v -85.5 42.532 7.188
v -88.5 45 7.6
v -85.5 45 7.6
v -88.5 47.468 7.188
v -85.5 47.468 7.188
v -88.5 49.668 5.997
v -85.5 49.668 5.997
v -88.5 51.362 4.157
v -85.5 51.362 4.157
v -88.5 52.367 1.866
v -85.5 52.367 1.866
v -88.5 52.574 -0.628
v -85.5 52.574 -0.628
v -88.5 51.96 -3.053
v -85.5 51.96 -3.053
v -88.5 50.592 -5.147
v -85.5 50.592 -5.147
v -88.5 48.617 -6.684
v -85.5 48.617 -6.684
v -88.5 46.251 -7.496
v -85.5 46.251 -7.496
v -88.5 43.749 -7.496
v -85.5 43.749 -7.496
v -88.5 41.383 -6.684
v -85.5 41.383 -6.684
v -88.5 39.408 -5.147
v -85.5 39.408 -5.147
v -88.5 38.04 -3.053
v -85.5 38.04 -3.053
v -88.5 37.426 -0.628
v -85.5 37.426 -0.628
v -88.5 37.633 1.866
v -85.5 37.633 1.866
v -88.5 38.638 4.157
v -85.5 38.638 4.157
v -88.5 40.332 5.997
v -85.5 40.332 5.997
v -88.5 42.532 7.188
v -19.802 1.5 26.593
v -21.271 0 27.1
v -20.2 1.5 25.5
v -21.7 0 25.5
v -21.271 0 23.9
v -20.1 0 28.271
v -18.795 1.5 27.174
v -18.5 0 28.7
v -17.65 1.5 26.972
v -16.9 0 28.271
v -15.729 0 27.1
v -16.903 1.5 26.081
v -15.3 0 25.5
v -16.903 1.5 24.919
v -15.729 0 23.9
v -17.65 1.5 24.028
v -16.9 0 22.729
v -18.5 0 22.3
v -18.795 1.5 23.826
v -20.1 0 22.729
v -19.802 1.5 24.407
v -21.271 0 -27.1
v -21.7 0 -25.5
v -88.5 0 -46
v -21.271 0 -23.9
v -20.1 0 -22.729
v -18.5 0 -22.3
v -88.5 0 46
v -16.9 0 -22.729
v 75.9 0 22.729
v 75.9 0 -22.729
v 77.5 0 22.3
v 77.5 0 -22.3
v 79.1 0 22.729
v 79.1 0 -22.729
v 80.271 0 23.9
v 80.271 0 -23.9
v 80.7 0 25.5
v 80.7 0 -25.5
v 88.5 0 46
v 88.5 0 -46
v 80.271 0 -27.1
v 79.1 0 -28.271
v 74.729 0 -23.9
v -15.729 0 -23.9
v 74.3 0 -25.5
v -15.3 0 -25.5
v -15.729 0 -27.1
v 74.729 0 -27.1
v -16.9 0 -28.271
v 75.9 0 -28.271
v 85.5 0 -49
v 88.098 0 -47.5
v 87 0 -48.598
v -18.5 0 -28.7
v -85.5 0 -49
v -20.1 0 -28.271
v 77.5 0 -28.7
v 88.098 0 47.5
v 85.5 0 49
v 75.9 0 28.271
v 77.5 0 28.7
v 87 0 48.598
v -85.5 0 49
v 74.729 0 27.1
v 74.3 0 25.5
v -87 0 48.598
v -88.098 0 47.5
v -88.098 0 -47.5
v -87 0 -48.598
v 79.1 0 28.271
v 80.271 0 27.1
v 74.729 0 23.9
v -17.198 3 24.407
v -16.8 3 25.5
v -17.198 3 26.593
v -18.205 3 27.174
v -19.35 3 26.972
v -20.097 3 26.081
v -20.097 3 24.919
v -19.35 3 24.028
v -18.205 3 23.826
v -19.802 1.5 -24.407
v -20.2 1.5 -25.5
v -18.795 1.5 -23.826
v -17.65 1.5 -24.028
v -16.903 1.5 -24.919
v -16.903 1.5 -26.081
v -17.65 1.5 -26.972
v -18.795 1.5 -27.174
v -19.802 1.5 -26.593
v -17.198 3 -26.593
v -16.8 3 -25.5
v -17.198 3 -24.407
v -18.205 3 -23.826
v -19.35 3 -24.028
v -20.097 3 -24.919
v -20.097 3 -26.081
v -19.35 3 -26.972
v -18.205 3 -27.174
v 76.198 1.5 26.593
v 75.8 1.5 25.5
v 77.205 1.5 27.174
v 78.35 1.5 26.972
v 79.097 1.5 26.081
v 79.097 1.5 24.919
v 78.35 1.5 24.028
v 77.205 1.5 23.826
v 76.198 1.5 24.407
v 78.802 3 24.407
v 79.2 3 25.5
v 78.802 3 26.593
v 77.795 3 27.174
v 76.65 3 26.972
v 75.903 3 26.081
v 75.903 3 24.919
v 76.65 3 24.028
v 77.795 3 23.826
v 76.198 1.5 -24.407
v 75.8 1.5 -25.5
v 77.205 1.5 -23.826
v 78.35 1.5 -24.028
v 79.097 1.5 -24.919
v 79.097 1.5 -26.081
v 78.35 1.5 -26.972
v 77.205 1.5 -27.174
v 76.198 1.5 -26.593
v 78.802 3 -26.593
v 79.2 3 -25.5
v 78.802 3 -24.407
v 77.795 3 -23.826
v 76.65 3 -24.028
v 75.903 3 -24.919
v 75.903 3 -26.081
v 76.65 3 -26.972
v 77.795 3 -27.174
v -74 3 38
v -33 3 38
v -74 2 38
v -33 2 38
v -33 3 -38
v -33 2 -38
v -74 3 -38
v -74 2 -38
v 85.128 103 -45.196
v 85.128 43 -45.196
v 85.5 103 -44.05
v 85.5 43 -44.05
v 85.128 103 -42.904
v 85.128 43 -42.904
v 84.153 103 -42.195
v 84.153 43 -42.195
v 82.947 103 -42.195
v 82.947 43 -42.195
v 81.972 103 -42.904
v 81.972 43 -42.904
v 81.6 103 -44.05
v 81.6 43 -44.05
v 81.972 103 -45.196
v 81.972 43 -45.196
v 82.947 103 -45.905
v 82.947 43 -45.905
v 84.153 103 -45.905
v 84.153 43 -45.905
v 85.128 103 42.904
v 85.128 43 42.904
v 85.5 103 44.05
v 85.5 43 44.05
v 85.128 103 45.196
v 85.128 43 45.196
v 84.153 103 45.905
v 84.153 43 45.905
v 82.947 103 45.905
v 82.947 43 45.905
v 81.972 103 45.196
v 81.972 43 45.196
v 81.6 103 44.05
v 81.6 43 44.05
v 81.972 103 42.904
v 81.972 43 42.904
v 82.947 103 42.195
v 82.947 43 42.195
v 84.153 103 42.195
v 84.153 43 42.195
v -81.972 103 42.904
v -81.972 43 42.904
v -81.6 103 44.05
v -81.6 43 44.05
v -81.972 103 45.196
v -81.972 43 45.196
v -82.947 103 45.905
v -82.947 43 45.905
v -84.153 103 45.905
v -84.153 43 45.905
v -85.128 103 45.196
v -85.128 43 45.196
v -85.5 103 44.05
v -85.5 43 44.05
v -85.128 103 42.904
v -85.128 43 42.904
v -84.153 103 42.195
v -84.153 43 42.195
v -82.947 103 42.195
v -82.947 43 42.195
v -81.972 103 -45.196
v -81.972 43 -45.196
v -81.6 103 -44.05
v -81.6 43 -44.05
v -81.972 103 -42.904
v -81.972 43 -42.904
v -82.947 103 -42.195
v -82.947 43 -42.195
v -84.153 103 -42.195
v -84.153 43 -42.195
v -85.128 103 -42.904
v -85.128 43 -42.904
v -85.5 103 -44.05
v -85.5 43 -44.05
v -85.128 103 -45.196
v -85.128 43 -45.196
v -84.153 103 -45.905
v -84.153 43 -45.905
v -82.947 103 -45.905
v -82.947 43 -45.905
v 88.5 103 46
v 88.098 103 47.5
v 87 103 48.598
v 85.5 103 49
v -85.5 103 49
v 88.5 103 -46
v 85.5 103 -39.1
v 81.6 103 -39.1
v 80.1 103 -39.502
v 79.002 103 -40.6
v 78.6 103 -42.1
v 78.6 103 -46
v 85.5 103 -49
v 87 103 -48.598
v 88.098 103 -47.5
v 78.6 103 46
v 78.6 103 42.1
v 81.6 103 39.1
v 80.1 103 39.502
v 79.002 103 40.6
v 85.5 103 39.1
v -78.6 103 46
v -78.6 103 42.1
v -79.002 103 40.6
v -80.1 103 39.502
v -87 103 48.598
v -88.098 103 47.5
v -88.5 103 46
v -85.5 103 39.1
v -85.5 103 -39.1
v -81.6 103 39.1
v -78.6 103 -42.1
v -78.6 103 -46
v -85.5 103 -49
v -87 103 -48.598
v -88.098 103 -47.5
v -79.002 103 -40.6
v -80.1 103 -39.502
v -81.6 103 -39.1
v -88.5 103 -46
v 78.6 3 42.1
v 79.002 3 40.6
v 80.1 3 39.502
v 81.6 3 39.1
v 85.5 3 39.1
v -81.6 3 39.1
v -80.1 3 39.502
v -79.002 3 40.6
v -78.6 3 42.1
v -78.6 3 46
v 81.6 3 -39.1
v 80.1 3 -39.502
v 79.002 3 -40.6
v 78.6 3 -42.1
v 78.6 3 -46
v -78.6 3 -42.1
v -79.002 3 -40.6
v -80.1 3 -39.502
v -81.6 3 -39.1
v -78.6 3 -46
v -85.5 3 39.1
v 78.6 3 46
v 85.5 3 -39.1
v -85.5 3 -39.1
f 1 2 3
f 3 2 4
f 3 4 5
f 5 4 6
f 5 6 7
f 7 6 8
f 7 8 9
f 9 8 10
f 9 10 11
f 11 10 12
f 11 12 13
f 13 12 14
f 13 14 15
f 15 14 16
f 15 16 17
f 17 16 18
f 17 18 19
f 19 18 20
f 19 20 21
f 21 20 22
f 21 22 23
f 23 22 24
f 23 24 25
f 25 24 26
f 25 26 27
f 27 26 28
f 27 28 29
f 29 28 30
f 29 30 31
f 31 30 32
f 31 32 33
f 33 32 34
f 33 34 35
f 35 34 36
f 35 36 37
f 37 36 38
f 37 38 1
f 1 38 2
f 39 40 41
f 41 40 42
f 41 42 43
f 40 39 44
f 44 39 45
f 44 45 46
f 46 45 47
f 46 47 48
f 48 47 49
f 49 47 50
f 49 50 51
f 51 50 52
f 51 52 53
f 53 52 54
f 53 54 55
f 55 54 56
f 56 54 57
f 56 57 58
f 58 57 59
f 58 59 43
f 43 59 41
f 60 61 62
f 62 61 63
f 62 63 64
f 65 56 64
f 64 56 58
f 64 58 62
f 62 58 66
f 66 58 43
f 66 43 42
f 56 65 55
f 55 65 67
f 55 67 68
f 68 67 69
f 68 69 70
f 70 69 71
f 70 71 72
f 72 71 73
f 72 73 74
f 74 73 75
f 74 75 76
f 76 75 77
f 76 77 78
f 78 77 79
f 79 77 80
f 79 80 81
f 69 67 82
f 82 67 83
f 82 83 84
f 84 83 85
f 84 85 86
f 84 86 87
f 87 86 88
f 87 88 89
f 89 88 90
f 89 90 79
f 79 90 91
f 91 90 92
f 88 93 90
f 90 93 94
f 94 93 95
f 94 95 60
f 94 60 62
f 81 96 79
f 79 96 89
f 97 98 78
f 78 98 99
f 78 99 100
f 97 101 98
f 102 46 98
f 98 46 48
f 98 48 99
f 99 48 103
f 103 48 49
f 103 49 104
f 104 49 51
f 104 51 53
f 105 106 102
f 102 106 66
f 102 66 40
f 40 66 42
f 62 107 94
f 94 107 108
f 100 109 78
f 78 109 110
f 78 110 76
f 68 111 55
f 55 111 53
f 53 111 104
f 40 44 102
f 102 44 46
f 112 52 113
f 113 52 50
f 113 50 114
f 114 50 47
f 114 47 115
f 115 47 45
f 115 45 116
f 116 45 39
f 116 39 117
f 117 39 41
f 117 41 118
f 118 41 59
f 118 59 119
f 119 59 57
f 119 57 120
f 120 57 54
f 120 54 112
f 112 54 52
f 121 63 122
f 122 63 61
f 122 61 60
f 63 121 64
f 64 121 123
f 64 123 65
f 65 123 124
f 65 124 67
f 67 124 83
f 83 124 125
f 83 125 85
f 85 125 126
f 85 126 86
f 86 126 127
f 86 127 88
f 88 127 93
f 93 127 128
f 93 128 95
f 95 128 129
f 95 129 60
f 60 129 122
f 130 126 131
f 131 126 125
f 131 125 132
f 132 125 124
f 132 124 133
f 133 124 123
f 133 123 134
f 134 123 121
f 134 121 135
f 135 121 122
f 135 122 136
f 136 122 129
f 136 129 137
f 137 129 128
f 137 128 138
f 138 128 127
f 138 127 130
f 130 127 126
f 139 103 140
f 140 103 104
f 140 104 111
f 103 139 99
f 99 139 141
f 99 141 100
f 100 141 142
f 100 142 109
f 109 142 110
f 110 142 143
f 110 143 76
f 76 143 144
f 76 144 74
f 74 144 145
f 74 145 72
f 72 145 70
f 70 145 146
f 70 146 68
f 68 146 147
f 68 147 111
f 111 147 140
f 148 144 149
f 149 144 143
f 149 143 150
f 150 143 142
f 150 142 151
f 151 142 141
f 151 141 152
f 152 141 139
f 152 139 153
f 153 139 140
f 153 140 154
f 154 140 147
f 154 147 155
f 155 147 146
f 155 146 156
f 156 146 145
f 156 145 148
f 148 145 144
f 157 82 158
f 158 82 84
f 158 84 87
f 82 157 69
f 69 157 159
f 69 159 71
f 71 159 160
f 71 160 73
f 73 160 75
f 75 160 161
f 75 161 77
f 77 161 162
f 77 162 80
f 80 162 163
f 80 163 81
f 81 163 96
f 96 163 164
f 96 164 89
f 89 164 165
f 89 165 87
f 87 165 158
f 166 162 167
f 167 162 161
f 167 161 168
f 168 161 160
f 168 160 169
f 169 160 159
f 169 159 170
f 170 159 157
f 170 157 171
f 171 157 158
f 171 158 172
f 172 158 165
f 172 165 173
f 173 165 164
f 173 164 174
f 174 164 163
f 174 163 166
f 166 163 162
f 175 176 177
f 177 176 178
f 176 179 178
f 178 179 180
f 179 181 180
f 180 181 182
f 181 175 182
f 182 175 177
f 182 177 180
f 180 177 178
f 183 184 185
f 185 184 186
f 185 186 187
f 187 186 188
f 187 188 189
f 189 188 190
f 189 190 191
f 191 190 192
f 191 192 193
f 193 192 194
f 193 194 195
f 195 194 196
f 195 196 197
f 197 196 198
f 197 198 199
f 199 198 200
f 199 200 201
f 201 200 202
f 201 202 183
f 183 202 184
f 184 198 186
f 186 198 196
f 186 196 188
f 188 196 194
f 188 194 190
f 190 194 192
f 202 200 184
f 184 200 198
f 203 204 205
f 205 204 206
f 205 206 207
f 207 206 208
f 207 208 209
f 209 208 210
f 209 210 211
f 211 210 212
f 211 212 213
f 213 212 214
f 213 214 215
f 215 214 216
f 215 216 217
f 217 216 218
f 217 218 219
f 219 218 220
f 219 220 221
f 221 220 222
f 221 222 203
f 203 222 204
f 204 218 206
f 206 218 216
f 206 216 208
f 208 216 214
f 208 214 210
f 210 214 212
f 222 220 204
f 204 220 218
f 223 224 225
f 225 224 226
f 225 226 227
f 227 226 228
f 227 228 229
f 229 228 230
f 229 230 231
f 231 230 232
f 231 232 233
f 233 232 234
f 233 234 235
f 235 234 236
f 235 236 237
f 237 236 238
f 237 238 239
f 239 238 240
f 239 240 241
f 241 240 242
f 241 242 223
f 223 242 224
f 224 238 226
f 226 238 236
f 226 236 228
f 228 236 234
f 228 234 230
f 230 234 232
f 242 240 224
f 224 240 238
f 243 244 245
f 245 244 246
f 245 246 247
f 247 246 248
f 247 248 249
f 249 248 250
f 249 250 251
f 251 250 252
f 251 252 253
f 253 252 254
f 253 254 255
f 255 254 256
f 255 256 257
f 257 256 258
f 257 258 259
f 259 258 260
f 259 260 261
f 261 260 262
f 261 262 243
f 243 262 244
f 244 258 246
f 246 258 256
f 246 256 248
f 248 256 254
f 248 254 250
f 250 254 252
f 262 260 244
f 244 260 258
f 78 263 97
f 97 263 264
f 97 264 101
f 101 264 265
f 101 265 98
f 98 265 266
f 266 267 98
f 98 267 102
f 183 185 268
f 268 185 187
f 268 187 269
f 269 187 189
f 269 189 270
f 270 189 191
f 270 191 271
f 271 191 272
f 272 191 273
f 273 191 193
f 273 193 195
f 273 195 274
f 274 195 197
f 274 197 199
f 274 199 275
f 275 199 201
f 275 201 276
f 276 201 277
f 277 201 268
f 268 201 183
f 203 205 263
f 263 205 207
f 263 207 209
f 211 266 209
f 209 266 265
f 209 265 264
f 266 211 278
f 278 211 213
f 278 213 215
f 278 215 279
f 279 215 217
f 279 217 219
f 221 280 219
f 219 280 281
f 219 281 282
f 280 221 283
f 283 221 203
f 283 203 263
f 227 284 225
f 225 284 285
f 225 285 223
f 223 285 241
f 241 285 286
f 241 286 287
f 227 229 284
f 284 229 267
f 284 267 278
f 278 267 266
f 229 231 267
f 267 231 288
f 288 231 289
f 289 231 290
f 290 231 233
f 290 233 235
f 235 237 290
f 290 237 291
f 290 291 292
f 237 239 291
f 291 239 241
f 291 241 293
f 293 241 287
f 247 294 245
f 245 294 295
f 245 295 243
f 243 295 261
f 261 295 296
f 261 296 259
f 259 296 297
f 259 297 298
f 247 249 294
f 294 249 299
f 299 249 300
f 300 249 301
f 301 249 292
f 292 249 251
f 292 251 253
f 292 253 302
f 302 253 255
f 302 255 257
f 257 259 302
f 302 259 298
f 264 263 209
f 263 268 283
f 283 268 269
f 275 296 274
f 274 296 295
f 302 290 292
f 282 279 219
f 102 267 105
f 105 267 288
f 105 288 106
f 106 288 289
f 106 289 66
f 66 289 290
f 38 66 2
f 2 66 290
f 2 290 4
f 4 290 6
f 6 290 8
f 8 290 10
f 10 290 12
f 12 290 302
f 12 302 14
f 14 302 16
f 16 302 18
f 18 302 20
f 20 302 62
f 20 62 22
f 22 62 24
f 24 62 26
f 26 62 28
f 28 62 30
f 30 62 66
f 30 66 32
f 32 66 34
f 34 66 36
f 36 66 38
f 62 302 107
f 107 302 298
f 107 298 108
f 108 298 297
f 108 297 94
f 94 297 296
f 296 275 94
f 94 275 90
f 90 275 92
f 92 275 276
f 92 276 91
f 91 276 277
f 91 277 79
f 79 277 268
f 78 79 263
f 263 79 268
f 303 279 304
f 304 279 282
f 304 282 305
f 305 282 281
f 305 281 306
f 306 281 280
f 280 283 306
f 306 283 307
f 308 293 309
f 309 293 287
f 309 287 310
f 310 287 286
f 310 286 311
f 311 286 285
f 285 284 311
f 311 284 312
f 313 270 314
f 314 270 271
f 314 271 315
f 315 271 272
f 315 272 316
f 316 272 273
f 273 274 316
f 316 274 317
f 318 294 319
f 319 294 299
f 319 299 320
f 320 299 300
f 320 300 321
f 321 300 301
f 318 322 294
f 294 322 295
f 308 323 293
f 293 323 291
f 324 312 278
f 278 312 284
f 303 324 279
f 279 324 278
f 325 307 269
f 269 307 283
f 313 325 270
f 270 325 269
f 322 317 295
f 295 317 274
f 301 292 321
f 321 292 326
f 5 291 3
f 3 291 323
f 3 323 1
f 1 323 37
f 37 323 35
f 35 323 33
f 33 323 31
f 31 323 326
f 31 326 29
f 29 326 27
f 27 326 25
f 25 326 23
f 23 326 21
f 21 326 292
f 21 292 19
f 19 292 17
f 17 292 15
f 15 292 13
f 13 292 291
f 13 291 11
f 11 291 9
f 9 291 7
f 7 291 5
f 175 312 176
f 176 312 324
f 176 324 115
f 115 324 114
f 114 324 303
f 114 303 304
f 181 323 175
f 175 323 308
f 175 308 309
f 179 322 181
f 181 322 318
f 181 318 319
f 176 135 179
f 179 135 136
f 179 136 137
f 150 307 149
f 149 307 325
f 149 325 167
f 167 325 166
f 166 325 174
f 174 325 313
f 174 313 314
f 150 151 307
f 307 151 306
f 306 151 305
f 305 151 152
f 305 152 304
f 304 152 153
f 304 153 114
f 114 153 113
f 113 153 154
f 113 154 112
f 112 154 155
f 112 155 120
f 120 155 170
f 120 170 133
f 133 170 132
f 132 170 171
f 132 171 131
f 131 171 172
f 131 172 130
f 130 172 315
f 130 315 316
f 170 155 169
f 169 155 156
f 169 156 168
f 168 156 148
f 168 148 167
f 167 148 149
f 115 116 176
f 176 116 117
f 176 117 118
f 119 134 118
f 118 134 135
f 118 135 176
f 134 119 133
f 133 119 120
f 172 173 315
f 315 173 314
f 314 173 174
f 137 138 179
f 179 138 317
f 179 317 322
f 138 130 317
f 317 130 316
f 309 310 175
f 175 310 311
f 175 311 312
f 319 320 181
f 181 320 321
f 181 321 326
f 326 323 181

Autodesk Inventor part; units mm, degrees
ref_plane "YZ Plane" through (0, 0, 0) normal (1, 0, 0) x (0, 1, 0)
ref_plane "XZ Plane" through (0, 0, 0) normal (0, 1, 0) x (-1, 0, 0)
ref_plane "XY Plane" through (0, 0, 0) normal (0, 0, 1) x (1, 0, 0)
sketch "Náčrt1" plane through (0, 0, 0) normal (0, 1, 0) x (-1, 0, 0)
  line L0 (0, -68.6) -> (0, 68.6) projected
  line L1 (-123.9, 0) -> (123.9, 0) projected
  line L2 (88.5, -49) -> (-88.5, -49)
  line L3 (-88.5, -49) -> (-88.5, 49)
  line L4 (-88.5, 49) -> (88.5, 49)
  line L5 (88.5, 49) -> (88.5, -49)
  point P0 (0, 0)
  dimension "d0" = 98
  dimension "d1" = 177
extrude "Vysunutí1" add sketch "Náčrt1" along normal blind 3
sketch "Náčrt2" plane through (0, 3, 0) normal (0, 1, 0) x (1, 0, 0)
  line L0 (88.5, 49) -> (-88.5, 49) projected
  line L1 (-88.5, 49) -> (-88.5, -49) projected
  line L2 (-88.5, -49) -> (88.5, -49) projected
  line L3 (88.5, -49) -> (88.5, 49) projected
  line L4 (88.5, 49) -> (-88.5, 49) projected
  line L5 (-88.5, 49) -> (-88.5, -49) projected
  line L6 (-88.5, 49) -> (88.5, 49)
  line L7 (88.5, 49) -> (88.5, -49)
  line L8 (88.5, -49) -> (-88.5, -49)
  line L9 (-88.5, -49) -> (-88.5, 49)
  line L10 (-85.5, -39.1) -> (-85.5, 39.1)
  line L11 (-85.5, 39.1) -> (-78.6, 39.1)
  line L12 (-78.6, 39.1) -> (-78.6, 46)
  line L13 (-78.6, 46) -> (78.6, 46)
  line L14 (78.6, 46) -> (78.6, 39.1)
  line L15 (78.6, 39.1) -> (85.5, 39.1)
  line L16 (85.5, 39.1) -> (85.5, -39.1)
  line L17 (85.5, -39.1) -> (78.6, -39.1)
  line L18 (78.6, -39.1) -> (78.6, -46)
  line L19 (78.6, -46) -> (-78.6, -46)
  line L20 (-78.6, -46) -> (-78.6, -39.1)
  line L21 (-78.6, -39.1) -> (-85.5, -39.1)
  point P0 (0, 0)
  dimension "d4" = 3
  dimension "d5" = 3
  dimension "d6" = 3
  dimension "d7" = 3
  dimension "d8" = 9.9
  dimension "d9" = 9.9
  dimension "d10" = 9.9
  dimension "d11" = 9.9
  dimension "d12" = 9.9
  dimension "d13" = 9.9
  dimension "d14" = 9.9
  dimension "d15" = 9.9
extrude "Vysunutí2" add sketch "Náčrt2" along normal blind 100
fillet "Zaoblení1" radius 3 8 edges at (-78.6, 53, -39.1) (78.6, 53, -39.1) (-78.6, 53, 39.1) (78.6, 53, 39.1) (88.5, 51.5, -49) (-88.5, 51.5, -49) (-88.5, 51.5, 49) (88.5, 51.5, 49)
sketch "Náčrt3" plane through (0, 103, 0) normal (0, 1, 0) x (1, 0, 0)
  line L0 (-88.5, 49) -> (-88.5, -49) projected
  line L1 (85.5, 49) -> (-85.5, 49) projected
  line L2 (-88.5, 46) -> (-88.5, -46) projected
  line L3 (-85.5, -49) -> (85.5, -49) projected
  line L4 (88.5, -46) -> (88.5, 46) projected
  arc A0 (81.6, -39.1) -> (78.6, -42.1) centre (81.6, -42.1) ccw projected
  line L5 (78.6, -42.1) -> (78.6, -46) projected
  line L6 (78.6, -46) -> (-78.6, -46) projected
  line L7 (-78.6, -46) -> (-78.6, -42.1) projected
  arc A1 (-78.6, -42.1) -> (-81.6, -39.1) centre (-81.6, -42.1) ccw projected
  line L8 (-81.6, -39.1) -> (-85.5, -39.1) projected
  line L9 (-85.5, -39.1) -> (-85.5, 39.1) projected
  line L10 (-85.5, 39.1) -> (-81.6, 39.1) projected
  arc A2 (-81.6, 39.1) -> (-78.6, 42.1) centre (-81.6, 42.1) ccw projected
  line L11 (-78.6, 42.1) -> (-78.6, 46) projected
  line L12 (-78.6, 46) -> (78.6, 46) projected
  line L13 (78.6, 46) -> (78.6, 42.1) projected
  arc A3 (78.6, 42.1) -> (81.6, 39.1) centre (81.6, 42.1) ccw projected
  line L14 (81.6, 39.1) -> (85.5, 39.1) projected
  line L15 (85.5, 39.1) -> (85.5, -39.1) projected
  line L16 (85.5, -39.1) -> (81.6, -39.1) projected
  arc A4 (85.5, -49) -> (88.5, -46) centre (85.5, -46) ccw projected
  arc A5 (88.5, 46) -> (85.5, 49) centre (85.5, 46) ccw projected
  arc A6 (-85.5, 49) -> (-88.5, 46) centre (-85.5, 46) ccw projected
  arc A7 (-88.5, -46) -> (-85.5, -49) centre (-85.5, -46) ccw projected
  point P0 (0, 0)
  point P1 (-83.55, 44.05)
  point P2 (-83.55, -44.05)
  point P3 (83.55, -44.05)
  point P4 (83.55, 44.05)
  dimension "d19" = 4.95
  dimension "d20" = 4.95
  dimension "d21" = 4.95
  dimension "d22" = 4.95
  dimension "d23" = 4.95
  dimension "d24" = 4.95
  dimension "d25" = 4.95
  dimension "d26" = 4.95
hole "Díra1" at (-83.55, 103, -44.05) at (-83.55, 103, 44.05) at (83.55, 103, 44.05) at (83.55, 103, -44.05) direction (0, -1, 0) diameter 3.9 depth 60
sketch "Náčrt4" plane through (0, 3, 0) normal (0, 1, 0) x (1, 0, 0)
  line L0 (0, 68.6) -> (0, -68.6) projected
  line L1 (123.9, 0) -> (-123.9, 0) projected
  line L2 (85.5, 39.1) -> (85.5, -39.1) projected
  point P0 (0, 0)
  point P1 (-18.5, 25.5)
  point P2 (77.5, 25.5)
  point P3 (-18.5, -25.5)
  point P4 (77.5, -25.5)
  dimension "d34" = 51
  dimension "d35" = 96
  dimension "d36" = 96
  dimension "d37" = 51
  dimension "d38" = 8
  dimension "d39" = 25.5
hole "Díra2" at (-18.5, 3, -25.5) at (77.5, 3, -25.5) at (-18.5, 3, 25.5) at (77.5, 3, 25.5) direction (0, -1, 0) diameter 3.4 end through all clearance for "Šroub se zápustnou hlavou ISO 2009/7046" size "M3" standard "ISO"
sketch "Náčrt5" plane through (0, 3, 0) normal (0, 1, 0) x (1, 0, 0)
  line L0 (-85.5, -39.1) -> (-85.5, 39.1) projected
  line L1 (123.9, 0) -> (-123.9, 0) projected
  line L2 (-74, -38) -> (-33, -38)
  line L3 (-33, -38) -> (-33, 38)
  line L4 (-33, 38) -> (-74, 38)
  line L5 (-74, 38) -> (-74, -38)
  circle A0 centre (-18.5, 25.5) radius 1.7 projected
  point P0 (0, 0)
  dimension "d47" = 41
  dimension "d48" = 76
  dimension "d49" = 14.5
extrude "Vysunutí3" cut sketch "Náčrt5" against normal blind 1 contours L3 L2 L5 L1 | L1 L5 L4 L3
chamfer "Zkosení1" distance 1.5 angle 45 4 edges at (77.5, 0, -27.2) (-18.5, 0, -27.2) (77.5, 0, 23.8) (-18.5, 0, 23.8)
sketch "Náčrt6" plane through (-88.5, 0, -46) normal (-1, 0, 0) x (0, 0, 1)
  line L0 (-22.6, 0) -> (114.6, 0) projected
  line L1 (46, 123.6) -> (46, -20.6) projected
  point P0 (46, 0)
  point P1 (46, 45)
  dimension "d55" = 45
hole "Díra3" at (-88.5, 45, 0) direction (1, 0, 0) diameter 15.2 depth 3
equation "\"d9\" = d8"
equation "\"d10\" = d8"
equation "\"d11\" = d8"
equation "\"d12\" = d8"
equation "\"d13\" = d8"
equation "\"d14\" = d8"
equation "\"d15\" = d8"
equation "\"d19\" = 0.5 * d8"
equation "\"d20\" = d19"
equation "\"d21\" = d20"
equation "\"d22\" = d19"
equation "\"d23\" = d22"
equation "\"d24\" = d21"
equation "\"d25\" = d19"
equation "\"d26\" = d19"
properties part number "box_bottom"
